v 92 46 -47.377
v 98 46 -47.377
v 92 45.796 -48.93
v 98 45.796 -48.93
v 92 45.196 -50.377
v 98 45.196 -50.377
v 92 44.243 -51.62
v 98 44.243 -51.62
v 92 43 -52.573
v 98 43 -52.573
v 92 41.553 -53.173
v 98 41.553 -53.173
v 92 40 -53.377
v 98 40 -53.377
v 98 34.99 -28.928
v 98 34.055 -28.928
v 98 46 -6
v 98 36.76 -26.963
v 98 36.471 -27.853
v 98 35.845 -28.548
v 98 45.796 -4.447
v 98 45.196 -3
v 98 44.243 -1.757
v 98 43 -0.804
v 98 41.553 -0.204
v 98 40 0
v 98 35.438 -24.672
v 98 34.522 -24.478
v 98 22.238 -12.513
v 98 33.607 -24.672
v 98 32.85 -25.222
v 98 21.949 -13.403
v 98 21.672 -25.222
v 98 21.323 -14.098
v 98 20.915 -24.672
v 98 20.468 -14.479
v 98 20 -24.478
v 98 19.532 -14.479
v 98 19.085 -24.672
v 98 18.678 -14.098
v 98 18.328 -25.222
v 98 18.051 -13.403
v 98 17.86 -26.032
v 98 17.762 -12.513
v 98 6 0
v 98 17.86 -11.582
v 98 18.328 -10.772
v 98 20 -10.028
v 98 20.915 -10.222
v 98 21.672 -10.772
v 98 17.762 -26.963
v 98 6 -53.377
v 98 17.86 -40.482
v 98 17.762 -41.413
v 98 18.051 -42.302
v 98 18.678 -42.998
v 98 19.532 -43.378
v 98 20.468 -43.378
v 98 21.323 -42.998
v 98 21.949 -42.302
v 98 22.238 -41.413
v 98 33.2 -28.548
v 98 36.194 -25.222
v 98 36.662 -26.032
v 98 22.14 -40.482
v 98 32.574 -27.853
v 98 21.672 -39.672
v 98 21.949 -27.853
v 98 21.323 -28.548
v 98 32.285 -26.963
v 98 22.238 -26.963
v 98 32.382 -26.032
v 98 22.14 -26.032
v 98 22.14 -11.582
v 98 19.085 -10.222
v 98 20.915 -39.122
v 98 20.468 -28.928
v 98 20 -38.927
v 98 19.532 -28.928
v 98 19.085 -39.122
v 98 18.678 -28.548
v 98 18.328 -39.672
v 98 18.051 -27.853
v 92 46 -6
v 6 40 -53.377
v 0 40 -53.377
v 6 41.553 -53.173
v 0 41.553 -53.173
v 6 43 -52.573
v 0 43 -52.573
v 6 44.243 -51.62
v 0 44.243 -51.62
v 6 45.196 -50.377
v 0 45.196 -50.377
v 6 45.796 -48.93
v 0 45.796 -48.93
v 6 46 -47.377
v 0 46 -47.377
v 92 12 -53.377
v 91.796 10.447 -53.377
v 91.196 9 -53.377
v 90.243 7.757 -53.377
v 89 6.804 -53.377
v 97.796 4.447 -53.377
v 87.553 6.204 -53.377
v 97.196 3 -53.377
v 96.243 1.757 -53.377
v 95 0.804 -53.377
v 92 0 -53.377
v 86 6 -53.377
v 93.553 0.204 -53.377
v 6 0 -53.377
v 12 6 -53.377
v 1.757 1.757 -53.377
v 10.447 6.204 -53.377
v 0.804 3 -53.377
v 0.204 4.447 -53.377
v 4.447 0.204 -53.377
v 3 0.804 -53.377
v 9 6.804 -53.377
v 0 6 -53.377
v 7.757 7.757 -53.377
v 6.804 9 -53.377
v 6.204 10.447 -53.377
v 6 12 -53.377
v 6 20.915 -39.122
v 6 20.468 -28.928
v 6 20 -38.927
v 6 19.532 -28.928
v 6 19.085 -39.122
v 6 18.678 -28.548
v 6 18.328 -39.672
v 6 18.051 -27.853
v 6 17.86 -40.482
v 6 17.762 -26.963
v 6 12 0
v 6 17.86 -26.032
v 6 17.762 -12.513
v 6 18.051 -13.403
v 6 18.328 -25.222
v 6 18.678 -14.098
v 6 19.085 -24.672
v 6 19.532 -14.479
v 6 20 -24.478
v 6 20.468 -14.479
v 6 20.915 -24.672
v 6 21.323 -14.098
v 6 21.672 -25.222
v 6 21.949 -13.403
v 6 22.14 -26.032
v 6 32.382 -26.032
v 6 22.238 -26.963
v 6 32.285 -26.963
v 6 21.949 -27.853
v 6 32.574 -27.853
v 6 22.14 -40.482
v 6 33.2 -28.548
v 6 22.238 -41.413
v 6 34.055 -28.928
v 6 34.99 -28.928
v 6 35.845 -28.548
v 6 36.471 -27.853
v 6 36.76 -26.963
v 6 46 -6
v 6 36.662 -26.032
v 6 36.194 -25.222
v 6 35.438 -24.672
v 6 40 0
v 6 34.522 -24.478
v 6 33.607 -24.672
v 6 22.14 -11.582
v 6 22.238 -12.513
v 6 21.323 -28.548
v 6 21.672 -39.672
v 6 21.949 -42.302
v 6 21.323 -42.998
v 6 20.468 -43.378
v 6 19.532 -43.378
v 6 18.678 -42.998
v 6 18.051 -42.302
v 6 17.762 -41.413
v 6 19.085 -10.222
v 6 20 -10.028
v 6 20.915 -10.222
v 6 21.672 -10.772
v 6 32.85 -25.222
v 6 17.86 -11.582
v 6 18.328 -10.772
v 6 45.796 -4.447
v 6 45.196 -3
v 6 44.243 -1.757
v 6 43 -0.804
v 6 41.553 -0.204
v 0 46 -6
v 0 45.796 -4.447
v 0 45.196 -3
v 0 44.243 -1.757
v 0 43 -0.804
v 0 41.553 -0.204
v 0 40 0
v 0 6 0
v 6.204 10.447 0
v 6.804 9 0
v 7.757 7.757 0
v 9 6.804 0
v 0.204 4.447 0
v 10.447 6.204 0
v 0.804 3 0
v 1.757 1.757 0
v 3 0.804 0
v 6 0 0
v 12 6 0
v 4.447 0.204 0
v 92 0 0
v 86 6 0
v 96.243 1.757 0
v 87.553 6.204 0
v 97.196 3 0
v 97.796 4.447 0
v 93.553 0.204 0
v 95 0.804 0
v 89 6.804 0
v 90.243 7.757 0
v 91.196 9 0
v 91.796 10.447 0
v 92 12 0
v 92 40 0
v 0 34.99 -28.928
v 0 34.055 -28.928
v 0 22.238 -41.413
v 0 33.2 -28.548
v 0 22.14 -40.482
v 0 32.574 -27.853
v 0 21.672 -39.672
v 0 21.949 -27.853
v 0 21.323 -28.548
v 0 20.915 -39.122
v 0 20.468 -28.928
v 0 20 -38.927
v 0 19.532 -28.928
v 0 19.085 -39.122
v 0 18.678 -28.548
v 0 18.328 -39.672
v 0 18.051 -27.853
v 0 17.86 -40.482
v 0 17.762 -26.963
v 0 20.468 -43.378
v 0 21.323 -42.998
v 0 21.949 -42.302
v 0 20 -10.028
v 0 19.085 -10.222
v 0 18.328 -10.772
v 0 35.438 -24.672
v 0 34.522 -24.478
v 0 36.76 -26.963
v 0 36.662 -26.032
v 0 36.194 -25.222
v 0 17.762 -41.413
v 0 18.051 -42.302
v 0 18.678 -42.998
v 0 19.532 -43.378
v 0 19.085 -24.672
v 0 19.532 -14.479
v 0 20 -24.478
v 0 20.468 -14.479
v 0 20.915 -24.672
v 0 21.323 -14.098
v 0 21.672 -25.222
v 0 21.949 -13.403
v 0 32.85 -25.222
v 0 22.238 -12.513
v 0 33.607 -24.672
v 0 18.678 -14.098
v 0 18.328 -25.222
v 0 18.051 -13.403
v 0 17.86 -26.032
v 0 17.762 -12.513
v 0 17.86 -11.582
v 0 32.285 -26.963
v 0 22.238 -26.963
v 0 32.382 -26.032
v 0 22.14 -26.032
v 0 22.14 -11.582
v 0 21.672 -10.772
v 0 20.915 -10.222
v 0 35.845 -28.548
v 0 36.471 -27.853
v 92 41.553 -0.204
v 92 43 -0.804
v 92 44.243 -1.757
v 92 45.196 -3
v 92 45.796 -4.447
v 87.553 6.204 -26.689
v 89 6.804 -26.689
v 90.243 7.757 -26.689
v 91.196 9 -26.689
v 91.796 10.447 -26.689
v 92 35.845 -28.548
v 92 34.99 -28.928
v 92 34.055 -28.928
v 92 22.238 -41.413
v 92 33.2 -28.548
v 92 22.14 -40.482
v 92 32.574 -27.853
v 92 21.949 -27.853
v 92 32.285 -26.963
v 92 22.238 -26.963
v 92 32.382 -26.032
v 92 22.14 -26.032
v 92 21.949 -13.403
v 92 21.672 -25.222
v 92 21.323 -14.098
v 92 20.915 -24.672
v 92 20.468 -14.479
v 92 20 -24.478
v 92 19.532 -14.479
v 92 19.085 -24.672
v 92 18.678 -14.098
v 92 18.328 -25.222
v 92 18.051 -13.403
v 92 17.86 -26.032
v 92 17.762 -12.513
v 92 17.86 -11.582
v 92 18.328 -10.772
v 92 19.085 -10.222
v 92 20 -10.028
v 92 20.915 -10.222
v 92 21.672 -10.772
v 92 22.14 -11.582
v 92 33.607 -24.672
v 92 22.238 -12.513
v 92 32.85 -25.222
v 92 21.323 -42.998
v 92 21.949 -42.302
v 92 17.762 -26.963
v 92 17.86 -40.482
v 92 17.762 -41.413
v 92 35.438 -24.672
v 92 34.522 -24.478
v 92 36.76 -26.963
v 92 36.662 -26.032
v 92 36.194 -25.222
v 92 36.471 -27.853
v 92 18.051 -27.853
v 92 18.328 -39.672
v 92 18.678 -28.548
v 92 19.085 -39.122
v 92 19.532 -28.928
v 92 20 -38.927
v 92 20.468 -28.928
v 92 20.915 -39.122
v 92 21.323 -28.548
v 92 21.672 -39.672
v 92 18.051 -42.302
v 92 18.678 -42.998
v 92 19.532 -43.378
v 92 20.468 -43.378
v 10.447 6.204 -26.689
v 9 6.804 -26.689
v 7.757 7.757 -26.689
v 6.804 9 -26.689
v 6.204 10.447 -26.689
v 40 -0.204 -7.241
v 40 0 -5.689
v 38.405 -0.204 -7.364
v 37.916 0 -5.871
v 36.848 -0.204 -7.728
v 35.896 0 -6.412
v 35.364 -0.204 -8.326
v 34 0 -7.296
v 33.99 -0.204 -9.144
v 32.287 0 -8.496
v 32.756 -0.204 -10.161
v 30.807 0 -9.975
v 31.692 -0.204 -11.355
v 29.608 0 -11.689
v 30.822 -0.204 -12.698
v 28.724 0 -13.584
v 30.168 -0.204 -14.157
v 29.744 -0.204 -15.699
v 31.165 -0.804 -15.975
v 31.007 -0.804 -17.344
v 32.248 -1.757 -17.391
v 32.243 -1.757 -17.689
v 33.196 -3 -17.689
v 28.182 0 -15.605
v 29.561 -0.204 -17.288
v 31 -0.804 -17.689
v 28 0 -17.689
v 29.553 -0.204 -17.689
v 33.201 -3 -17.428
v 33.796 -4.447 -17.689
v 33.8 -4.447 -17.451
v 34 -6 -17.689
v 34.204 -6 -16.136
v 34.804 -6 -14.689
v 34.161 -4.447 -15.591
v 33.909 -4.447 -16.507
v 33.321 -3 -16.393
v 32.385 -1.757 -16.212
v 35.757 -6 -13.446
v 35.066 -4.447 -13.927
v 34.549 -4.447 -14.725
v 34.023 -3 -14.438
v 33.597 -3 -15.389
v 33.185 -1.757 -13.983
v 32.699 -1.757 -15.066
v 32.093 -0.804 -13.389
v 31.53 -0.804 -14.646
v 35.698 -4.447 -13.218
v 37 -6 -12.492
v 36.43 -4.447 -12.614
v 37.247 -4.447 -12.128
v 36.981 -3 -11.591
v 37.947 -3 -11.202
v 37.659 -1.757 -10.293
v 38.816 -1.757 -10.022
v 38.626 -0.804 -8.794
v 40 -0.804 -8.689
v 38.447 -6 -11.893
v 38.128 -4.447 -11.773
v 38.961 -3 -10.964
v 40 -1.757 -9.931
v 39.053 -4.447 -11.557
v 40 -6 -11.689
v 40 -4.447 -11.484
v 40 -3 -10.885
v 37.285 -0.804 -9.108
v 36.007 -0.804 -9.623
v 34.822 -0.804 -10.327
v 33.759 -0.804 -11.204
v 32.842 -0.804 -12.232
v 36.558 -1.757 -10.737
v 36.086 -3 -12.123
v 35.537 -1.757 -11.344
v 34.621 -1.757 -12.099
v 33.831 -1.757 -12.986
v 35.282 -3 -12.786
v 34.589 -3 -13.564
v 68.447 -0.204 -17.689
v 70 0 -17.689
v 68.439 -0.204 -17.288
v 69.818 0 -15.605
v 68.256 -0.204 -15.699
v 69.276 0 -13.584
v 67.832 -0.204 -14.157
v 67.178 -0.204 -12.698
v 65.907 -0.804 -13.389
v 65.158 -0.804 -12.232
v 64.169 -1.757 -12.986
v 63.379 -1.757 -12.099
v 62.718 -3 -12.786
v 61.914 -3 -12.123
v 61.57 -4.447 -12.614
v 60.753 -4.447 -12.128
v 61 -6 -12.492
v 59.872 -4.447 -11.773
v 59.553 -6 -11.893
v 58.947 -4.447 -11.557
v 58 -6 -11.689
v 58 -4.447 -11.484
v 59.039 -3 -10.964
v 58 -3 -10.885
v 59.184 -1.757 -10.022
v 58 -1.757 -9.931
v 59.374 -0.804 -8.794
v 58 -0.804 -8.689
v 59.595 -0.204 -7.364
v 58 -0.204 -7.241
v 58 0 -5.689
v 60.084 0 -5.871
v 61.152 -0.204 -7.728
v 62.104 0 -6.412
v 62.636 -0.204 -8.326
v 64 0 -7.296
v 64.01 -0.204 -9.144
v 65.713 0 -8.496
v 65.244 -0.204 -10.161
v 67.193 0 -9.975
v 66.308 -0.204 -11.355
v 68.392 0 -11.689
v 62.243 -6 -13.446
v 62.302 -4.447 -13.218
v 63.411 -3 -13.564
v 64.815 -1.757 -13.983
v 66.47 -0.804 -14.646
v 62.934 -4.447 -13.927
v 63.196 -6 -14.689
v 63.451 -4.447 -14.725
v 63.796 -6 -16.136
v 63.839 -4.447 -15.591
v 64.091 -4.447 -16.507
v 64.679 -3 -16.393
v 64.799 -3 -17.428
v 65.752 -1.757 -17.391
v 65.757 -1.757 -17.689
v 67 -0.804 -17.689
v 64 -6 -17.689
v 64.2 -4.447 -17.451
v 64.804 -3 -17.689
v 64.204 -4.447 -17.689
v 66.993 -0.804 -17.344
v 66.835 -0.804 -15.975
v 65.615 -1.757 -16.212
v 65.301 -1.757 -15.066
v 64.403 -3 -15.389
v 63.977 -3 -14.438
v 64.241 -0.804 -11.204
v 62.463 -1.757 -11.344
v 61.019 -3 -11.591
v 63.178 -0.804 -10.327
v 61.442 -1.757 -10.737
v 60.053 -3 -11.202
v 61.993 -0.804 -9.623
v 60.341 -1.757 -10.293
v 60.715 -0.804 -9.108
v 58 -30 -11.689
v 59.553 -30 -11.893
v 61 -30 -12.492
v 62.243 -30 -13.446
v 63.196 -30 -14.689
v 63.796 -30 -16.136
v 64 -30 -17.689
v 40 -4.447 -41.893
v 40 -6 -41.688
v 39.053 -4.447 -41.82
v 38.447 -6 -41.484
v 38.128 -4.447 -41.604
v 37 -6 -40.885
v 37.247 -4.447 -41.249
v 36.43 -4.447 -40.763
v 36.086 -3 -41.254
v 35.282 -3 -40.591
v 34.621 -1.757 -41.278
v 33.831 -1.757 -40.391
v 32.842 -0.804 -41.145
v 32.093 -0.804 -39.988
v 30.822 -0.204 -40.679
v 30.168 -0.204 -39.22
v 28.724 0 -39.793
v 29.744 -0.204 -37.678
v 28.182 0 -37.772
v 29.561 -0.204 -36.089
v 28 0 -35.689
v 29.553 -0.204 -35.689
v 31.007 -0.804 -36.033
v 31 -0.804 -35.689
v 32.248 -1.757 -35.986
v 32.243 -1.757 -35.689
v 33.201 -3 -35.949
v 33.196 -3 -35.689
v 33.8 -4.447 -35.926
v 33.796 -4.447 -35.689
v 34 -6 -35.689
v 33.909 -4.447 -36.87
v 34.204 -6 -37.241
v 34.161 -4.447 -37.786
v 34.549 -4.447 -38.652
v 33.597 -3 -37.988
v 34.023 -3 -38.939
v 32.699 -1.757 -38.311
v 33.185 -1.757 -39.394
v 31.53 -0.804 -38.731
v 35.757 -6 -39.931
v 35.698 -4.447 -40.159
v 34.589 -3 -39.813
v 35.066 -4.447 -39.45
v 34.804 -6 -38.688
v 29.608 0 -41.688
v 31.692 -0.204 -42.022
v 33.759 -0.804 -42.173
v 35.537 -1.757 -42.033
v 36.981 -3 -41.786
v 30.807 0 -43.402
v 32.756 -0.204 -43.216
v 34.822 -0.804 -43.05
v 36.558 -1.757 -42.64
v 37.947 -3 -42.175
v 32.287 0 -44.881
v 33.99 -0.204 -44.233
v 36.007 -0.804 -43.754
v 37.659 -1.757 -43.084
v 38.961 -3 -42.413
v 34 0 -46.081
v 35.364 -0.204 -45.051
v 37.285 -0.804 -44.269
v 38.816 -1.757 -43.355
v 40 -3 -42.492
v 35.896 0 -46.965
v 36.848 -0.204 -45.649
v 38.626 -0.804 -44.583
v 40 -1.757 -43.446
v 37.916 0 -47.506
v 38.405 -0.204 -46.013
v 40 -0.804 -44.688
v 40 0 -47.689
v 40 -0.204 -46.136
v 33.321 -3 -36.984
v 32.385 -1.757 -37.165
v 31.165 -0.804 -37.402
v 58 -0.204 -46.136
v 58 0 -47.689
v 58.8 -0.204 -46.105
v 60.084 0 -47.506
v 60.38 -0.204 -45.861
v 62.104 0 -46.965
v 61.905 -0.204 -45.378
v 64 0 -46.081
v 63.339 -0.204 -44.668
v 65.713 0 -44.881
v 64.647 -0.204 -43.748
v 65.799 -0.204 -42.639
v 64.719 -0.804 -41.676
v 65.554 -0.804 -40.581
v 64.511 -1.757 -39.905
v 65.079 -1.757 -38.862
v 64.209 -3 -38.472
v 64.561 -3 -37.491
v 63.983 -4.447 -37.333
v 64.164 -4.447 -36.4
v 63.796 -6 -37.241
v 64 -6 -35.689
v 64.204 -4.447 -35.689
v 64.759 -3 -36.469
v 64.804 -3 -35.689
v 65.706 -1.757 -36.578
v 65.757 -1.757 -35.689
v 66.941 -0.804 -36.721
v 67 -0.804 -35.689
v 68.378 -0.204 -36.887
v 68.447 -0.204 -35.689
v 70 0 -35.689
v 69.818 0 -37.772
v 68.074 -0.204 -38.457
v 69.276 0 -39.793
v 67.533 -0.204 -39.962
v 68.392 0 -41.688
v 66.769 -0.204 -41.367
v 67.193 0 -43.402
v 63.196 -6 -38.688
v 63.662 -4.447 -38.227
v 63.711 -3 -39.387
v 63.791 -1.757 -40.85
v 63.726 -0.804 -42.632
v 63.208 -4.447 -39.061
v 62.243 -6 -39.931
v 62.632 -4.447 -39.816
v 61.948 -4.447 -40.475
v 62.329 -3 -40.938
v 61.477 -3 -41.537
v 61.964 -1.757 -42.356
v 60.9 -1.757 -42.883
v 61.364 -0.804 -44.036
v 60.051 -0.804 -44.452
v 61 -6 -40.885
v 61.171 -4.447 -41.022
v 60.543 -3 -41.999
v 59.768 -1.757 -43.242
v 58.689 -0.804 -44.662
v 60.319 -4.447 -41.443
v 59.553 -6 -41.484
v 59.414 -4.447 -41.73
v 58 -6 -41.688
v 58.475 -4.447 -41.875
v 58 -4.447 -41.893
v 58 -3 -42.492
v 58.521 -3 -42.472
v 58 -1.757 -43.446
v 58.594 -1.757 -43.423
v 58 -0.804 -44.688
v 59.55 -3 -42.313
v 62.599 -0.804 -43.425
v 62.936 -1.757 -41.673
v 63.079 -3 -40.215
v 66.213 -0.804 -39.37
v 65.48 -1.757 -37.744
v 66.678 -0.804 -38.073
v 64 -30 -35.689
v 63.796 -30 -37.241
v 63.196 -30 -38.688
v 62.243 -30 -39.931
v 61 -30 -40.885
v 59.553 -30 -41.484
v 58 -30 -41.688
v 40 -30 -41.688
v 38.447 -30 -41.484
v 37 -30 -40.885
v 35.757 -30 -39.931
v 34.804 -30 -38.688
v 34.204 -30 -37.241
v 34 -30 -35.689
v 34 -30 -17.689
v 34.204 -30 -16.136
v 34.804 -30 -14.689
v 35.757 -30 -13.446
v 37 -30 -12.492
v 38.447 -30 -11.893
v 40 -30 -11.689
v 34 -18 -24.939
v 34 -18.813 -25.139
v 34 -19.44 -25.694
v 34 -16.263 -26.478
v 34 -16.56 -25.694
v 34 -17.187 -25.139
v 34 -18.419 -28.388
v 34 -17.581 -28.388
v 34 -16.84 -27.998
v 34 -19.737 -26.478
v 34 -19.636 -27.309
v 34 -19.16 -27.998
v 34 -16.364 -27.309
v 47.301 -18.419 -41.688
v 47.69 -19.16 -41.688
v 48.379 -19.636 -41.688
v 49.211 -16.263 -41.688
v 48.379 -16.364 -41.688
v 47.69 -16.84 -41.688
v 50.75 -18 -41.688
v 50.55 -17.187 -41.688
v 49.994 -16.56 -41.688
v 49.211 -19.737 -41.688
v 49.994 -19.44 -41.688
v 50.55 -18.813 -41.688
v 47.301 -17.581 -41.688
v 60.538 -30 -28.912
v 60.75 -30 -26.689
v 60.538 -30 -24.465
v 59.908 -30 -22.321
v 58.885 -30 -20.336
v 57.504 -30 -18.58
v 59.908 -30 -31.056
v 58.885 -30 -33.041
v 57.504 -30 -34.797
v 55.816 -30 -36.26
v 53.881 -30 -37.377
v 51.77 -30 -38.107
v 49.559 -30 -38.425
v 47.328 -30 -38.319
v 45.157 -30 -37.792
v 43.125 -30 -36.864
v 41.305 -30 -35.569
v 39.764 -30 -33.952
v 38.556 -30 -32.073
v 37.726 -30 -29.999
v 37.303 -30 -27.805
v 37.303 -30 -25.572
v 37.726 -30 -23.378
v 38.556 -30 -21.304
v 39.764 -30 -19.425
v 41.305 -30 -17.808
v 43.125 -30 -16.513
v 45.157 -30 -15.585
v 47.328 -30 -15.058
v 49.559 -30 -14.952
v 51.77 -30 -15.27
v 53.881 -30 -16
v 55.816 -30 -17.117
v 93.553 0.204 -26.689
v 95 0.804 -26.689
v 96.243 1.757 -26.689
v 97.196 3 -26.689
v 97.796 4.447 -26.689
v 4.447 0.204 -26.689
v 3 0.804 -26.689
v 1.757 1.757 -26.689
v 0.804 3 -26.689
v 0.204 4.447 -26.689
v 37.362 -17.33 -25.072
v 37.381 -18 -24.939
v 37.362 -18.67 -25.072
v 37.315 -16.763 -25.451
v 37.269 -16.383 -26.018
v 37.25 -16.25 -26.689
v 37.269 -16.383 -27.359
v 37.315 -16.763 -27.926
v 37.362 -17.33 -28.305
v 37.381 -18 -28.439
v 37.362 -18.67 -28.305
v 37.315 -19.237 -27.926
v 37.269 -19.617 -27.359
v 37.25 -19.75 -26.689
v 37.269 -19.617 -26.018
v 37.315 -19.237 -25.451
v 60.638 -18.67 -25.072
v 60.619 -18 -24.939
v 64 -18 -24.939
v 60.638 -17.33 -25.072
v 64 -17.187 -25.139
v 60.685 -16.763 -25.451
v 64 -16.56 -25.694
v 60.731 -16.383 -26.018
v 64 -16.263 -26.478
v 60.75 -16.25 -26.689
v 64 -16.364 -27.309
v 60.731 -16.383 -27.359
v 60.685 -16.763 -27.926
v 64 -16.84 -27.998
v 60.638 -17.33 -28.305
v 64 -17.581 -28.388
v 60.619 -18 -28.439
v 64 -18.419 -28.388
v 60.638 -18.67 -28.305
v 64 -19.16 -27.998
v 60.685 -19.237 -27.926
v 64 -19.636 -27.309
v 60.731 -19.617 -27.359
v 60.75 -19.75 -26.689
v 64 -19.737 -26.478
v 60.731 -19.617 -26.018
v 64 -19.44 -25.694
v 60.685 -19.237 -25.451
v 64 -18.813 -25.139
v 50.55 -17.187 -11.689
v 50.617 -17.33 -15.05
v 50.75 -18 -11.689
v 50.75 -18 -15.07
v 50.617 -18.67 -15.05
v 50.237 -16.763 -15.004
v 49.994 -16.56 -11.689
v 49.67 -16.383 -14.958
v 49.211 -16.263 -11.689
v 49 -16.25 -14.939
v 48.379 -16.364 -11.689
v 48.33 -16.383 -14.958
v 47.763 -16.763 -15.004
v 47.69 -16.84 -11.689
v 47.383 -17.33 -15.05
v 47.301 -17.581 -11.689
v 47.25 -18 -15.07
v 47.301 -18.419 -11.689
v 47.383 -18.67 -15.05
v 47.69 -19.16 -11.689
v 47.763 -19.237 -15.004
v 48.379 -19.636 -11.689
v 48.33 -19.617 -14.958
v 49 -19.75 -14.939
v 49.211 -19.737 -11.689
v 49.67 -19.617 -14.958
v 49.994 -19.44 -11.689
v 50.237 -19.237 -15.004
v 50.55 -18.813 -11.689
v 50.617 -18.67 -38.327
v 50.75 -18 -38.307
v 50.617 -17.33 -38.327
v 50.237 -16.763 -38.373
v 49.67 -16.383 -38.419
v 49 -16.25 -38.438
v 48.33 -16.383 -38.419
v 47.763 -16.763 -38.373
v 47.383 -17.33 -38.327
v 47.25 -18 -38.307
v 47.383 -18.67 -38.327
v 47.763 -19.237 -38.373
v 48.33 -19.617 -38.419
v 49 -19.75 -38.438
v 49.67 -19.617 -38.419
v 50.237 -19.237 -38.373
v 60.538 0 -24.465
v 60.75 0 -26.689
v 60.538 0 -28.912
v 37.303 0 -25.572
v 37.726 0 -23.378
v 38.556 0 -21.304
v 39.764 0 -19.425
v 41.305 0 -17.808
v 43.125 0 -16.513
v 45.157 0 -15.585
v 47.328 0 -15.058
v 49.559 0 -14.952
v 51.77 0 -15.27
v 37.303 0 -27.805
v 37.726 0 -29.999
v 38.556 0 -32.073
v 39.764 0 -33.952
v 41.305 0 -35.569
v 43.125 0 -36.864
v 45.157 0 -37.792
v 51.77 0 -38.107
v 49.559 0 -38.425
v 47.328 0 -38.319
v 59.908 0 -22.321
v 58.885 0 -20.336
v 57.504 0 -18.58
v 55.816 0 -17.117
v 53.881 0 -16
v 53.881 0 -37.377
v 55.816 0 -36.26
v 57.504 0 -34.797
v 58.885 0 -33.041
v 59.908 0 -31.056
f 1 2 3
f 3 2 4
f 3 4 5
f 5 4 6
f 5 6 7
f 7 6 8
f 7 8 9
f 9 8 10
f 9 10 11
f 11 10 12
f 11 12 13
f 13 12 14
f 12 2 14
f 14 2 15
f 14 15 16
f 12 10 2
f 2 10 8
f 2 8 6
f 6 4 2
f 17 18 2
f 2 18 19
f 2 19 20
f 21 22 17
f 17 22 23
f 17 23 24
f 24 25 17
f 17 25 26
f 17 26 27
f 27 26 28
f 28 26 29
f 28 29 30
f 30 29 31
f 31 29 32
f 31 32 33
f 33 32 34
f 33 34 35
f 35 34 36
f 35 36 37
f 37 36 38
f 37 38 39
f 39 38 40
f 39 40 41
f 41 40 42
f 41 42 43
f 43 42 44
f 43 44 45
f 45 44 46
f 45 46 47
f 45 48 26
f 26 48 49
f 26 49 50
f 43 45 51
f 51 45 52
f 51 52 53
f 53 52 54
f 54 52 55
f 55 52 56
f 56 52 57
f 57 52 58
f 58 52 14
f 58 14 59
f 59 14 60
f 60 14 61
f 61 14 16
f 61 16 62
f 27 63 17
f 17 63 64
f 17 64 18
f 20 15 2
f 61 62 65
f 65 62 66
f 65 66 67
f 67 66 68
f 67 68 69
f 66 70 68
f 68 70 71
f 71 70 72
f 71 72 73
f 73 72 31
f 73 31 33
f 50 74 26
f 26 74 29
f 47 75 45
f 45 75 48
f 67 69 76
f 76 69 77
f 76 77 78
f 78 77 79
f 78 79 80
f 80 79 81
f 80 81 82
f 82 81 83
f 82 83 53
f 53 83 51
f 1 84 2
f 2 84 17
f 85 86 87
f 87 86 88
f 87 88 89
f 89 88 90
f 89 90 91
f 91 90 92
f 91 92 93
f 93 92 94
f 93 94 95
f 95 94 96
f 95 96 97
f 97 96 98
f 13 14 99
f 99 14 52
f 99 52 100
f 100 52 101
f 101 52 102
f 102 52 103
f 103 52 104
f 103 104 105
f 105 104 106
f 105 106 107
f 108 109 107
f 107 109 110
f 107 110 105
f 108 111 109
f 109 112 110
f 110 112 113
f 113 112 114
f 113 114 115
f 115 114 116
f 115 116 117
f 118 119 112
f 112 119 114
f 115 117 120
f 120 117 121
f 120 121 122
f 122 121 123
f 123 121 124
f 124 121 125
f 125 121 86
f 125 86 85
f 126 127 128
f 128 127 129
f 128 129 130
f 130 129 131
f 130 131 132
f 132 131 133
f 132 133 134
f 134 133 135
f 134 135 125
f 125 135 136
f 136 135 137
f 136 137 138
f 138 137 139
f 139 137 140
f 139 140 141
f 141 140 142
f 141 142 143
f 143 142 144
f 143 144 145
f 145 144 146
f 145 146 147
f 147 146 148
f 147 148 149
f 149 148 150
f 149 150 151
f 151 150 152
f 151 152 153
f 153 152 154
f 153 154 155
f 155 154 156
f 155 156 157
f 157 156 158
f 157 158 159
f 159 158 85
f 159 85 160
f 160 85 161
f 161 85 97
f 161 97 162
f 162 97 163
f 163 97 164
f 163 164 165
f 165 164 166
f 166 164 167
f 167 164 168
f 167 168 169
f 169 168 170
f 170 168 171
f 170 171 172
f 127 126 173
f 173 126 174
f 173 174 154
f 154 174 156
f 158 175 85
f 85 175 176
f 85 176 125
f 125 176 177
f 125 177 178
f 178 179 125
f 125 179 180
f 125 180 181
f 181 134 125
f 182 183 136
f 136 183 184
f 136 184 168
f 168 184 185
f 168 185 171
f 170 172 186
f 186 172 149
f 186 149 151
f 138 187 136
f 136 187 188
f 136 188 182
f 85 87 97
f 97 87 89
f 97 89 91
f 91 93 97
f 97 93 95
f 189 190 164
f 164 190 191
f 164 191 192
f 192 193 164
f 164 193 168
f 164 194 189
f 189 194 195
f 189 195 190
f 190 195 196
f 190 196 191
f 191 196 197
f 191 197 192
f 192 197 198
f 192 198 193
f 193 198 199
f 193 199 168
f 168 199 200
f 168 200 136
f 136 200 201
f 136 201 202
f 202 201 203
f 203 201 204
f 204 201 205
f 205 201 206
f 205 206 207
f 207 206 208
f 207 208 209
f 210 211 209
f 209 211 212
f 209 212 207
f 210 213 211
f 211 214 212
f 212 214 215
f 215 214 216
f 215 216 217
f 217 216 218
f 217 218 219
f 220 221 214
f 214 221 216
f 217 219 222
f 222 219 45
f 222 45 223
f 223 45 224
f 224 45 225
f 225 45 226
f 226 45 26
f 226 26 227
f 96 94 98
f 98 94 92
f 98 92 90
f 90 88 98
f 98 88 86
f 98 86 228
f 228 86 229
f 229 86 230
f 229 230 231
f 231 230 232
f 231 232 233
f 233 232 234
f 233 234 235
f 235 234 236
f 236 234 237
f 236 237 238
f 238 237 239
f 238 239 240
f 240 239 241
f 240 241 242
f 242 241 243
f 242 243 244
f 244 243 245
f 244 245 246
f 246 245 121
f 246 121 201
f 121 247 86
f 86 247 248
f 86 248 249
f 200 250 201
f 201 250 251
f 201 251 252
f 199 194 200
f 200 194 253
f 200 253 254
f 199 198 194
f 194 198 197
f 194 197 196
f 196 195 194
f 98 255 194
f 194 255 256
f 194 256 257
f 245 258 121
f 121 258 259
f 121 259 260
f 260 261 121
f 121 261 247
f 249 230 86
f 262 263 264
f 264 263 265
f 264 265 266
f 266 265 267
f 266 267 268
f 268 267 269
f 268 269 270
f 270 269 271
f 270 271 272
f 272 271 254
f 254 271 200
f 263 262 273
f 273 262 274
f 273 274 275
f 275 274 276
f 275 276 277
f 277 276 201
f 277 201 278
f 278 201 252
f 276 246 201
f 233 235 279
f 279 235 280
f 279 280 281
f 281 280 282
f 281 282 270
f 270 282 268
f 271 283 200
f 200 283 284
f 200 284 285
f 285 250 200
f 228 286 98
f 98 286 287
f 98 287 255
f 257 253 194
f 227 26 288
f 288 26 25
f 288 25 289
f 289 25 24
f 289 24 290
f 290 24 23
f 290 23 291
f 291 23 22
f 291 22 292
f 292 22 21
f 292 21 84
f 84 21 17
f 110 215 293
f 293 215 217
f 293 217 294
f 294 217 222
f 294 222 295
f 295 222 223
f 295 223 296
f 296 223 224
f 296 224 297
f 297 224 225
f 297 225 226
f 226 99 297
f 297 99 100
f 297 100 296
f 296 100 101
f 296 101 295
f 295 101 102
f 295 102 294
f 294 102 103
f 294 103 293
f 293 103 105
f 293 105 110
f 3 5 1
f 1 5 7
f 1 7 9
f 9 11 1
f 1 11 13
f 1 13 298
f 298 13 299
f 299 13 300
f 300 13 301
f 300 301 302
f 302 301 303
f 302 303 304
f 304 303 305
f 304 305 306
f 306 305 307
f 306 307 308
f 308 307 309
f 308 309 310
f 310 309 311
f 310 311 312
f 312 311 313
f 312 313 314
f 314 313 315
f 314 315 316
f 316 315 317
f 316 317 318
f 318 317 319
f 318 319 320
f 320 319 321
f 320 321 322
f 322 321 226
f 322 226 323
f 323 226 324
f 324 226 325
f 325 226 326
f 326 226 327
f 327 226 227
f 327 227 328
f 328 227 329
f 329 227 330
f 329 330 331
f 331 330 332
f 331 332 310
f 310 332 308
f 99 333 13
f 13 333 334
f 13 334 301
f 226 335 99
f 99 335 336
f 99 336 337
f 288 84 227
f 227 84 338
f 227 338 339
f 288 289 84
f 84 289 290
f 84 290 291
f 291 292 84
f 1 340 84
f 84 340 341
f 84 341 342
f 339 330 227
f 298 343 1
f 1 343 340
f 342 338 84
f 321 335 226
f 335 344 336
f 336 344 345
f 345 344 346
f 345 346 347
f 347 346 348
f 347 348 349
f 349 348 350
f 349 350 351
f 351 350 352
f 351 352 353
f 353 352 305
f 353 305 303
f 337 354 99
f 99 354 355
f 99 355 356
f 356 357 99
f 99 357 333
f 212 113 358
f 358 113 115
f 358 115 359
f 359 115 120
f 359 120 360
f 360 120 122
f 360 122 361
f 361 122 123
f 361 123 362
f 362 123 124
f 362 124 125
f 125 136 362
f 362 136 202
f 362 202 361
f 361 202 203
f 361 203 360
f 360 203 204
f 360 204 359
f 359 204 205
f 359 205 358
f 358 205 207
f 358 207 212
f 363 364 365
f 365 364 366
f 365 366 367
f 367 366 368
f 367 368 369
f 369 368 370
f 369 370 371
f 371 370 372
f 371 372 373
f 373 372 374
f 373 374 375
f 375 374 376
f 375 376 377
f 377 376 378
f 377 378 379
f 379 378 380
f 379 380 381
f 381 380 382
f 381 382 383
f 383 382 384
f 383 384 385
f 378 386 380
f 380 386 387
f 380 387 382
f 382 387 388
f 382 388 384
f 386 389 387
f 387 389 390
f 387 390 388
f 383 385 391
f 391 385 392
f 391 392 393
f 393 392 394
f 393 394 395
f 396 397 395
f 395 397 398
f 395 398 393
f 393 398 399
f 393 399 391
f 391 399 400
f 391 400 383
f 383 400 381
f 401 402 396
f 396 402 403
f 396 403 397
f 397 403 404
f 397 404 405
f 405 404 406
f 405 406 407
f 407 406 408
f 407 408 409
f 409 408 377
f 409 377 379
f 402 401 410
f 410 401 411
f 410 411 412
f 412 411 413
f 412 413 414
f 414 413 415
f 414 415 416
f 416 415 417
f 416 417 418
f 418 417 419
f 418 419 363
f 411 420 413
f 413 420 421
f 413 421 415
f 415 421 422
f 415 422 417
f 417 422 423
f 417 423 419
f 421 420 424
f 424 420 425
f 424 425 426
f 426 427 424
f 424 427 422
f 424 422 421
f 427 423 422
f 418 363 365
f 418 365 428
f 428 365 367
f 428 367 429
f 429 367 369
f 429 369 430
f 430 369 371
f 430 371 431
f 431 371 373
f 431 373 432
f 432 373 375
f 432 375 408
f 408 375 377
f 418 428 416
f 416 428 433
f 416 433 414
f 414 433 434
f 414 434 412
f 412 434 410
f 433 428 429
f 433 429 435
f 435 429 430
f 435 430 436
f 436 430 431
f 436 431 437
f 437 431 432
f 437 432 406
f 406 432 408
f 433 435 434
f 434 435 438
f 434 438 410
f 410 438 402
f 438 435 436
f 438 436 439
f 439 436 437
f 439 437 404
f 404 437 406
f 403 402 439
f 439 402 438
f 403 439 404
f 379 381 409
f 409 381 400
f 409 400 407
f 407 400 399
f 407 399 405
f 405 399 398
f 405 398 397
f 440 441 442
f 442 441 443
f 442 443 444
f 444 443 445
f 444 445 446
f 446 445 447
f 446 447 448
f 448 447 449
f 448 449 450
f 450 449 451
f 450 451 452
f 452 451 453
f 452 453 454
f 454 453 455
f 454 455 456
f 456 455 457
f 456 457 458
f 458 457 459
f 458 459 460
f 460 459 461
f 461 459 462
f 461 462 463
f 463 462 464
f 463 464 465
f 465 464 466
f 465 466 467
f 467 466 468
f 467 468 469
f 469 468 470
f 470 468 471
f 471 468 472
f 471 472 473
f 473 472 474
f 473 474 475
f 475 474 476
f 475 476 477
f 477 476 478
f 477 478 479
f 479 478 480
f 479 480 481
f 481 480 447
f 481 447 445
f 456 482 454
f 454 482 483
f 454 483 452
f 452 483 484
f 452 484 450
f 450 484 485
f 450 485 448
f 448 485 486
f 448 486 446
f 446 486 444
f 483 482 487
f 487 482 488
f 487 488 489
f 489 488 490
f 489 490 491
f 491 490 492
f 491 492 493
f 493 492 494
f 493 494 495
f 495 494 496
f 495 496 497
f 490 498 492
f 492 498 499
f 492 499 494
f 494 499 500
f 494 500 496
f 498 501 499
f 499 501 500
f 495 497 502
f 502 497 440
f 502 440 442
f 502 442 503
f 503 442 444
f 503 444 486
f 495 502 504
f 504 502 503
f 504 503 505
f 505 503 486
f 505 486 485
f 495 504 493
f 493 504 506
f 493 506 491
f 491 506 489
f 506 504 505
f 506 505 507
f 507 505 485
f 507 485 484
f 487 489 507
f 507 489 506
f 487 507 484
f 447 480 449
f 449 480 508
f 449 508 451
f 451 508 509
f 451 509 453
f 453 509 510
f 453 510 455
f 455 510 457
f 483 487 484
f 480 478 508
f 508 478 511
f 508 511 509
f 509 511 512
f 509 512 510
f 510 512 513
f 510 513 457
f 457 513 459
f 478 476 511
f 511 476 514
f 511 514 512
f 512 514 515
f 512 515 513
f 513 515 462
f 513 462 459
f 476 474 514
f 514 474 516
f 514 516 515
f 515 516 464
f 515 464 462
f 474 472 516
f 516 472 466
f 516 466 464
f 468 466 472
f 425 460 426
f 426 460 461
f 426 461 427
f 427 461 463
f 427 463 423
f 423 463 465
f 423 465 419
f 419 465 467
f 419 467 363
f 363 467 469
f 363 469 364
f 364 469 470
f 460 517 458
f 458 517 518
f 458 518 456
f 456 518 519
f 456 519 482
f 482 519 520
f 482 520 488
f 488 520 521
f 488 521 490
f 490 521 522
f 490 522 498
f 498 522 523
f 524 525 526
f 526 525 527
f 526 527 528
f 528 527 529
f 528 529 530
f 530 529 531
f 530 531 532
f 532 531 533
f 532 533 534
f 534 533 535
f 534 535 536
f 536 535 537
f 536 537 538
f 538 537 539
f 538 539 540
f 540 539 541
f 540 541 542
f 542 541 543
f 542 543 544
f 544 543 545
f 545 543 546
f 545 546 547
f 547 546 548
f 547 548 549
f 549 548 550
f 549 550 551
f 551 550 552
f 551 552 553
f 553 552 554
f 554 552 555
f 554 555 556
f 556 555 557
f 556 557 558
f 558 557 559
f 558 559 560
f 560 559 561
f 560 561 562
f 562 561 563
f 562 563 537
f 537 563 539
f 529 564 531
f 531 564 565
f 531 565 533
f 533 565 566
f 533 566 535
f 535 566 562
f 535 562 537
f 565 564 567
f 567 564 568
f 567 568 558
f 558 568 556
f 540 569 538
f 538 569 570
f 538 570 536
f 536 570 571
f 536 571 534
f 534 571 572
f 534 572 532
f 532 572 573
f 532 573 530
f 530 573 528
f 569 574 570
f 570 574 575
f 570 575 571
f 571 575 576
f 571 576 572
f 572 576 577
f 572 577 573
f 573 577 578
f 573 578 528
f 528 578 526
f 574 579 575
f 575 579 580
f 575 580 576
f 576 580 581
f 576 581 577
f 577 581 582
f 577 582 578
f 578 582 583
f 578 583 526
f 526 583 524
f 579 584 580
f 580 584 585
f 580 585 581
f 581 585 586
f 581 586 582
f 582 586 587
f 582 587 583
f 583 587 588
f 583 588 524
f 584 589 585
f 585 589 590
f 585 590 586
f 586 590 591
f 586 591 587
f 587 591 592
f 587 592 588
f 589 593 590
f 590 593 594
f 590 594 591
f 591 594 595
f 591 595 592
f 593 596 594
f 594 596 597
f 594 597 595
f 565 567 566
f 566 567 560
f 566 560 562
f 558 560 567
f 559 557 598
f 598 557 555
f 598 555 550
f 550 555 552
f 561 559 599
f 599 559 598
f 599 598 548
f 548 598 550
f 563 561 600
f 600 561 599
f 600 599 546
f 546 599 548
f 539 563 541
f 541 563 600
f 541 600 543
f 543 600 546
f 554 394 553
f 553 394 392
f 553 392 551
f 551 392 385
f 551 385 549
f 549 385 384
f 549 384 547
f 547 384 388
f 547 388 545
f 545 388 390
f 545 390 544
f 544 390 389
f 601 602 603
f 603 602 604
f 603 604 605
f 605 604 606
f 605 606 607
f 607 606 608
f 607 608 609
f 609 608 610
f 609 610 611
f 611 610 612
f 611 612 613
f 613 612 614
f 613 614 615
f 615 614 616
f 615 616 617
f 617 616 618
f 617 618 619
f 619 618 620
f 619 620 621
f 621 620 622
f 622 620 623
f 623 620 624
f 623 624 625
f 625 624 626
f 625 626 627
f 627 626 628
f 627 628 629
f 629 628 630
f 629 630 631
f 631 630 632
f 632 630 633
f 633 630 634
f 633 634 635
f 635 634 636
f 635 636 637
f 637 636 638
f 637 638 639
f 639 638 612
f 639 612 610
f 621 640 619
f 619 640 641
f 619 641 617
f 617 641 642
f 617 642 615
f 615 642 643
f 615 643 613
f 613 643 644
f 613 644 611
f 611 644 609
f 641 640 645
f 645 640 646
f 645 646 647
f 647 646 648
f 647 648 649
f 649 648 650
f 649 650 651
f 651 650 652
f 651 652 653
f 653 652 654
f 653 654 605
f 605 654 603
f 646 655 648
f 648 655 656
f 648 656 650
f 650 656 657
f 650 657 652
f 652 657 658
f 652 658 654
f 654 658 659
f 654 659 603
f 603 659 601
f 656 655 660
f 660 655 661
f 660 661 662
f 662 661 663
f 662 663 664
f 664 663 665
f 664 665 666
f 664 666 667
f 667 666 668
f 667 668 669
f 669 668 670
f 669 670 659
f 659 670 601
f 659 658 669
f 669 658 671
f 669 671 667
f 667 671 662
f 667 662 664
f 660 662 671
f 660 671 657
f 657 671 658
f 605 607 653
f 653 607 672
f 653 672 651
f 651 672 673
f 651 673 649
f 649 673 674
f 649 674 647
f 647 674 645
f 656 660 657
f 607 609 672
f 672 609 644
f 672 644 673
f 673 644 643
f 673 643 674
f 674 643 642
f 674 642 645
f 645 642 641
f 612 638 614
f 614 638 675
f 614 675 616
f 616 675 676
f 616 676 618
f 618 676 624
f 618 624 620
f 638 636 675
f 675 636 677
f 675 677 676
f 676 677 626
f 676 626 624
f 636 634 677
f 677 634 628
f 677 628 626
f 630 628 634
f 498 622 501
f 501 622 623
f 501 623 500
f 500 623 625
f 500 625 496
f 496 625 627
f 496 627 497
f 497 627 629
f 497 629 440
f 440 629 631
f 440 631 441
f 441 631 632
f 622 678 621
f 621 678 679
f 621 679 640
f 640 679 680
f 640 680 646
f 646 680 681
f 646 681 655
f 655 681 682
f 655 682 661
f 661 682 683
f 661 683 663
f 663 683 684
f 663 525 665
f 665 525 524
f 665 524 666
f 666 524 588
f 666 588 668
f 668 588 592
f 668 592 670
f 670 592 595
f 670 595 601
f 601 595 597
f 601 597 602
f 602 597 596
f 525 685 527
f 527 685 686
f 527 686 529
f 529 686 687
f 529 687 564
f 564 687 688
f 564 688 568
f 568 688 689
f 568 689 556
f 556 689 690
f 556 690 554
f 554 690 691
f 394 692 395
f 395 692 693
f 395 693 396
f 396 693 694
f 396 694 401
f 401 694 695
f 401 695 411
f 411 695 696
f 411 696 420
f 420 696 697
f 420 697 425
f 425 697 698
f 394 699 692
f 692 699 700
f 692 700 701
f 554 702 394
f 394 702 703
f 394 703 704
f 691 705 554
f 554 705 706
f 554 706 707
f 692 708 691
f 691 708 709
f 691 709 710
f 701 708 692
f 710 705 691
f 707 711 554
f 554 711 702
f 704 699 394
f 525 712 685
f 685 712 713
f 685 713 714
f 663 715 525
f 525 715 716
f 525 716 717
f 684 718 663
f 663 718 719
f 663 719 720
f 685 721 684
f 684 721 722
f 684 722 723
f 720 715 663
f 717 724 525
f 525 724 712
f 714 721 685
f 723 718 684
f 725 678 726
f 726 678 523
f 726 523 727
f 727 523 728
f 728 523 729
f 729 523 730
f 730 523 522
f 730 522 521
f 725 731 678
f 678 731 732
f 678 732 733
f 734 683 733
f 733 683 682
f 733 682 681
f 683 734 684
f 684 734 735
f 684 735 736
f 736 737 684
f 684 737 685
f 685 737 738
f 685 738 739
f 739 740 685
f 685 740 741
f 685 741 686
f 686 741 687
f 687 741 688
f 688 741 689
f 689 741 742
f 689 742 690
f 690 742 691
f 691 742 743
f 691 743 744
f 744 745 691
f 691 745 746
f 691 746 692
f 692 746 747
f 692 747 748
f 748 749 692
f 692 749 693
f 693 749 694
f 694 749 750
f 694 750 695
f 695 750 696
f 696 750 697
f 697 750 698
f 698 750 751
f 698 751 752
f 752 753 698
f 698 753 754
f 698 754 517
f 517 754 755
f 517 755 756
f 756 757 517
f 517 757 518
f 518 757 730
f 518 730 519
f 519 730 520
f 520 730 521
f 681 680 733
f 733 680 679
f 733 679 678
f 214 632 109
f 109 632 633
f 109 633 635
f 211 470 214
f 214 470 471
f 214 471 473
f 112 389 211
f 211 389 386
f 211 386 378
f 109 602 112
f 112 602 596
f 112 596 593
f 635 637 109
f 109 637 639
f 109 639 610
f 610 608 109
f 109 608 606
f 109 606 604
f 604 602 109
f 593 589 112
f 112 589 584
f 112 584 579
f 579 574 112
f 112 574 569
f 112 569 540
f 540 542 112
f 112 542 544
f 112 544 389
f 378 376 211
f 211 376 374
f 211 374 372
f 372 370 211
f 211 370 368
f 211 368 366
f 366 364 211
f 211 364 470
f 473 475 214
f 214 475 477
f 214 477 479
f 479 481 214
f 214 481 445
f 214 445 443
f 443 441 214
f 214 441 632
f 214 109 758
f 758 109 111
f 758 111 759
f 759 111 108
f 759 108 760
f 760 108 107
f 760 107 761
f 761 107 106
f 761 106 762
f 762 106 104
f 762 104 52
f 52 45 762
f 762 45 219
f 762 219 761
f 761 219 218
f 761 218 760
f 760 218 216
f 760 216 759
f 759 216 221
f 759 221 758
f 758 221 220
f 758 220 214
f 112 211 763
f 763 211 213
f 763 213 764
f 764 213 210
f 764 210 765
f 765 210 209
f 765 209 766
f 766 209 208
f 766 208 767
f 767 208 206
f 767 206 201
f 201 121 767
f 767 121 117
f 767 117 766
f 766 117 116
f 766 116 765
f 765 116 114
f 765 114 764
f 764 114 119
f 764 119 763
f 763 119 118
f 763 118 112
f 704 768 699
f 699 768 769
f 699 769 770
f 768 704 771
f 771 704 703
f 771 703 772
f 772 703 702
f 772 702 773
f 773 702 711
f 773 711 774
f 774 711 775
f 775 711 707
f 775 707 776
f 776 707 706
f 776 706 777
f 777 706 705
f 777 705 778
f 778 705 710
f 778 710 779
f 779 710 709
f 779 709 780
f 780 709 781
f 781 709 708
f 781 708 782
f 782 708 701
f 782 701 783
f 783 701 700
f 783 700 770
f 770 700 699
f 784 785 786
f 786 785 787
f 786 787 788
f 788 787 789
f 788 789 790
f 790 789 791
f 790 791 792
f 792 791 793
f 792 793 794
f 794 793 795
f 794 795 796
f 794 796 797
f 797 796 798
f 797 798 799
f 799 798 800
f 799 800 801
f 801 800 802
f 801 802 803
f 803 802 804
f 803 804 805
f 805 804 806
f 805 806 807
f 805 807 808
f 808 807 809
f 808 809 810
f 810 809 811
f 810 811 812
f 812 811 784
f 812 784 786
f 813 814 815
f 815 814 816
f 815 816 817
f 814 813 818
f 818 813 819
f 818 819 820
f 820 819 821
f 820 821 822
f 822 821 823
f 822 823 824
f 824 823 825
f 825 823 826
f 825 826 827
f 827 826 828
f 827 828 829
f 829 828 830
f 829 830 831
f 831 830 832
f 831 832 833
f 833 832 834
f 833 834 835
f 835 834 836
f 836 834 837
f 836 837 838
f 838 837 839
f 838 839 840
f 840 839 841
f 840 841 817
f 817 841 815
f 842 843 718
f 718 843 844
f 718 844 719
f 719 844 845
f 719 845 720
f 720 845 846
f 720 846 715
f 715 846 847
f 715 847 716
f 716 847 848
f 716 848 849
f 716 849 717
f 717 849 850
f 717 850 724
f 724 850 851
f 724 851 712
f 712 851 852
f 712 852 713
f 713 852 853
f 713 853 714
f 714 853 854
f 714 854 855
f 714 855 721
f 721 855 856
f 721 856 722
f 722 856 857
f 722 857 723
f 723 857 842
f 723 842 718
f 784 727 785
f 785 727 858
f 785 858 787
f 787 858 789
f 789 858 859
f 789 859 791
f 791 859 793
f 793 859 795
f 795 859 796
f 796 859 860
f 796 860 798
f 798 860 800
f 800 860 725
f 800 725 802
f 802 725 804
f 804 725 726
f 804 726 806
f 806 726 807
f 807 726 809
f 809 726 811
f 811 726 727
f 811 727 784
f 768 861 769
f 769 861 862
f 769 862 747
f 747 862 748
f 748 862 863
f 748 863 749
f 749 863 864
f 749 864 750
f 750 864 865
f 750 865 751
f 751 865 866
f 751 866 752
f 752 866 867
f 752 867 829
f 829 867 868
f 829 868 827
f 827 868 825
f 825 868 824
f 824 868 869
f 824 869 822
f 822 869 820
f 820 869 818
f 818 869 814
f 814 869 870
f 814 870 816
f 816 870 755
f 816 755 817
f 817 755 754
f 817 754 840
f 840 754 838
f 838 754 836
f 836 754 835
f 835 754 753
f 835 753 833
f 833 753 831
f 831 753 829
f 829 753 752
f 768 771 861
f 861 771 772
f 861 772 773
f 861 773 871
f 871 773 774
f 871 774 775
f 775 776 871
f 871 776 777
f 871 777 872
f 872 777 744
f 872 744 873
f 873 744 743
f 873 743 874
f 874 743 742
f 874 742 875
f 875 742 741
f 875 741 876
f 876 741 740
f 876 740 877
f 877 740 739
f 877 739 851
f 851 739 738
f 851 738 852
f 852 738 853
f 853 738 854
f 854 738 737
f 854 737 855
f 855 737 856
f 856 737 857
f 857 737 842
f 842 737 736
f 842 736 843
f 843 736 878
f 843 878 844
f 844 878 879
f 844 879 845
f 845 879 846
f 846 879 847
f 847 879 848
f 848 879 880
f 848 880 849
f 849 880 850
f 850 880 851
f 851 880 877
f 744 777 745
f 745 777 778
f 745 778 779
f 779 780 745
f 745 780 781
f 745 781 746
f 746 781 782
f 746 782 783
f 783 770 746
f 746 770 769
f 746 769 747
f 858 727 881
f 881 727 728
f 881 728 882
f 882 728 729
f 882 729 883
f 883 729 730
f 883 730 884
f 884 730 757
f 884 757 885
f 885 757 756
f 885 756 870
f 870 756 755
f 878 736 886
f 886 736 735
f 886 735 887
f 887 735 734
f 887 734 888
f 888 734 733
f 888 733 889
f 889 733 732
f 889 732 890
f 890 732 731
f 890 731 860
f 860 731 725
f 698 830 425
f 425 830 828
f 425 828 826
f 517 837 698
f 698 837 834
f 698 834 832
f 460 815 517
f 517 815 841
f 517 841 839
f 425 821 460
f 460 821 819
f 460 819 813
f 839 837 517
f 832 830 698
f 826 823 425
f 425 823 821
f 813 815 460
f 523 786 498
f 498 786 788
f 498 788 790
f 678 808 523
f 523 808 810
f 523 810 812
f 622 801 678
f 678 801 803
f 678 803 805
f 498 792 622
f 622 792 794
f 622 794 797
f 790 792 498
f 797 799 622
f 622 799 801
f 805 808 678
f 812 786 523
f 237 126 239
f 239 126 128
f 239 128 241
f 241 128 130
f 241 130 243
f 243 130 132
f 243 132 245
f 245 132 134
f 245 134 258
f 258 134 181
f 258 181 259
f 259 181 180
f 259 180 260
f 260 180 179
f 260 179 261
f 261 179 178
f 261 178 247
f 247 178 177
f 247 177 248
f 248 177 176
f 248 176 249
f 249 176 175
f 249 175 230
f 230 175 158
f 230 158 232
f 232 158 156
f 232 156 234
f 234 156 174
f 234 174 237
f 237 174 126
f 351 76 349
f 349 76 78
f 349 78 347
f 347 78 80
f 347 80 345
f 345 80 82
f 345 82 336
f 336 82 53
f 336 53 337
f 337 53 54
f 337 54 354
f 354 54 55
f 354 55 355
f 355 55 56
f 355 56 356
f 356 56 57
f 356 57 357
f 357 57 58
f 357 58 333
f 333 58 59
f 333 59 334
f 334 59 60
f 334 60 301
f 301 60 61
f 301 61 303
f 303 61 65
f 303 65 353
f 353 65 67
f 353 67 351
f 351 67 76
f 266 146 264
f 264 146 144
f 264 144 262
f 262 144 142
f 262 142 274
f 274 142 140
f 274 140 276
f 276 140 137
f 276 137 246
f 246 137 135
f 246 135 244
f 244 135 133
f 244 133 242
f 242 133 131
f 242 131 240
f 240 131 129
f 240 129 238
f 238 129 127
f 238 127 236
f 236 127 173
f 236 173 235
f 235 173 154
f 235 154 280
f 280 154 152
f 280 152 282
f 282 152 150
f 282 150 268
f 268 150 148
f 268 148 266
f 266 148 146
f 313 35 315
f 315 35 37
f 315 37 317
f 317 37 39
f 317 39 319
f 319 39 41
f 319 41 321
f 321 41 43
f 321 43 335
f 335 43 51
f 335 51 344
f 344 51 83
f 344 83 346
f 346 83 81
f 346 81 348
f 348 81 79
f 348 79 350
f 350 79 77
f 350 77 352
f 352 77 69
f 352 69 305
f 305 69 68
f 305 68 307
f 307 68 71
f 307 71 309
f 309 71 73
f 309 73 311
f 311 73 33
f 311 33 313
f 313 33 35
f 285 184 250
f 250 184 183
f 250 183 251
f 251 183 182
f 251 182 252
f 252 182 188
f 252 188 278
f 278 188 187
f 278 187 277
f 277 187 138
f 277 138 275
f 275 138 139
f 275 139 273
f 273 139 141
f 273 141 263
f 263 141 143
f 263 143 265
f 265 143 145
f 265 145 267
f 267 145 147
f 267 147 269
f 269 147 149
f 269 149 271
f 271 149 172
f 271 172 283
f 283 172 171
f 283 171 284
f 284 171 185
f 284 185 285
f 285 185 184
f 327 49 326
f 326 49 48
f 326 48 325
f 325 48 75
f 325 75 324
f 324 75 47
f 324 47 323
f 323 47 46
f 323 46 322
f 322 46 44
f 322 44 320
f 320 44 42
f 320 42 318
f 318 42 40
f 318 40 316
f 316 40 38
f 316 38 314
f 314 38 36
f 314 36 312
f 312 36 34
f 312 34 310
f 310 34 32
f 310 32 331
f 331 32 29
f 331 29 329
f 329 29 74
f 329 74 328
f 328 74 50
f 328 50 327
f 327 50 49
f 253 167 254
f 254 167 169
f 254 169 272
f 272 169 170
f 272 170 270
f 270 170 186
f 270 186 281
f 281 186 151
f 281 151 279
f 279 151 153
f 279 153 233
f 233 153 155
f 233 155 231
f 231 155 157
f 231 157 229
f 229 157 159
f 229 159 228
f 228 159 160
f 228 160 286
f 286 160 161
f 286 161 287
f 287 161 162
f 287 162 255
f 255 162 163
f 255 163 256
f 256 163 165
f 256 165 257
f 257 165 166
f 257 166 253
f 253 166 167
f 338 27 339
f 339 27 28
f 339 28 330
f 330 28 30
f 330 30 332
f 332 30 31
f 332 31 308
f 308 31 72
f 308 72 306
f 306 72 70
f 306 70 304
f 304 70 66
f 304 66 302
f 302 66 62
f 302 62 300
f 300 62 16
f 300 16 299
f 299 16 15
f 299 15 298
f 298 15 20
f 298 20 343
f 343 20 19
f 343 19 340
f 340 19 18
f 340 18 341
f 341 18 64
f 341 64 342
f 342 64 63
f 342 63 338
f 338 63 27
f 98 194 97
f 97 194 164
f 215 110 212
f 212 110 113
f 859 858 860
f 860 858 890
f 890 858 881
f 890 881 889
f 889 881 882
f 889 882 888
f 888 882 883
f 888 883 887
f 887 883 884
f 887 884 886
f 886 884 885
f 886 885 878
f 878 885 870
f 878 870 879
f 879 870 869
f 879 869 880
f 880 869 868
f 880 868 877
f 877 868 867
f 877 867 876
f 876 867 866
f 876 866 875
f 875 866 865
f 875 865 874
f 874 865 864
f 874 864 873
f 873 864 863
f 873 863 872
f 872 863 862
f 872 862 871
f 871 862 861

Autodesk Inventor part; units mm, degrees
ref_plane "YZ Plane" through (0, 0, 0) normal (1, 0, 0) x (0, 1, 0)
ref_plane "XZ Plane" through (0, 0, 0) normal (0, 1, 0) x (-1, 0, 0)
ref_plane "XY Plane" through (0, 0, 0) normal (0, 0, 1) x (1, 0, 0)
sketch "Sketch1" plane through (0, 0, 0) normal (0, 1, 0) x (-1, 0, 0)
  line L0 (0, 0) -> (-98, 0)
  line L1 (-98, 0) -> (-98, -53.377)
  line L2 (-98, -53.377) -> (0, -53.377)
  line L3 (0, -53.377) -> (0, 0)
  line L4 (-98, -53.377) -> (0, 0) construction
  dimension "d0" = 98
  dimension "d1" = 53.377
extrude "Extrusion1" add sketch "Sketch1" along normal blind 6
sketch "Sketch2" plane through (0, 6, 0) normal (0, 1, 0) x (1, 0, 0)
  line L0 (98, 0) -> (98, 53.377) projected
  line L1 (0, 0) -> (98, 0) projected
  line L2 (98, 53.377) -> (92, 53.377)
  line L3 (92, 53.377) -> (92, 0)
  line L4 (92, 0) -> (98, 0)
  line L5 (98, 0) -> (98, 53.377)
  line L6 (0, 53.377) -> (6, 53.377)
  line L7 (6, 53.377) -> (6, 0)
  line L8 (6, 0) -> (0, 0)
  line L9 (0, 0) -> (0, 53.377)
  dimension "d4" = 6
  dimension "d5" = 6
extrude "Extrusion2" add sketch "Sketch2" along normal blind 40
sketch "Sketch3" plane through (0, 0, -53.377) normal (-1, 0, 0) x (0, 0, 1)
  arc A0 (41.0993, 20) -> (12.1996, 20) centre (26.6494, 20.0723) ccw construction
  arc A1 (43.3493, 19.9888) -> (9.9496, 19.9888) centre (26.6494, 20.0723) ccw
  arc A2 (38.8493, 20.0113) -> (14.4496, 20.0113) centre (26.6494, 20.0723) ccw
  arc A3 (38.8493, 20.0113) -> (43.3493, 19.9888) centre (41.0993, 20) ccw
  arc A4 (9.9496, 19.9888) -> (14.4496, 20.0113) centre (12.1996, 20) ccw
  circle A5 centre (26.6495, 20) radius 2.25
  circle A6 centre (41.0993, 20) radius 2.25
  circle A7 centre (12.1996, 20) radius 2.25
  circle A8 centre (26.6494, 34.5224) radius 2.25
  point P0 (53.377, 0)
  dimension "d8" = 4.5
  dimension "d9" = 4.5
  dimension "d36" = 14.45
extrude "Extrusion3" cut sketch "Sketch3" against normal blind 110 and the other way blind 12.5 contours A3 A6 A1 | A8 | A7 A4 | A5
sketch "Sketch4" plane through (0, 0, 0) normal (0, -1, 0) x (1, 0, 0)
  line L0 (98, -53.377) -> (92, -53.377) construction
  line L1 (98, -53.377) -> (0, 0) construction
  line L2 (64, -41.6885) -> (34, -41.6885)
  line L3 (34, -41.6885) -> (34, -11.6885)
  line L4 (34, -11.6885) -> (64, -11.6885)
  line L5 (64, -11.6885) -> (64, -41.6885)
  line L6 (64, -41.6885) -> (34, -11.6885) construction
  line L7 (34, -41.6885) -> (64, -11.6885) construction
  circle A0 centre (49, -26.6885) radius 11.75
  dimension "d16" = 30
  dimension "d17" = 30
  dimension "d18" = 23.5
extrude "Extrusion4" add sketch "Sketch4" along normal blind 30
sketch "Sketch5" plane through (34, 0, -11.6885) normal (0, 0, 1) x (1, 0, 0)
  line L0 (0, -30) -> (30, -30) construction
  line L1 (30, 0) -> (0, 0) construction
  circle A0 centre (15, -18) radius 1.75
  point P0 (-34, 0)
  dimension "d21" = 3.5
  dimension "d26" = 12
extrude "Extrusion5" cut sketch "Sketch5" against normal blind 33
sketch "Sketch7" plane through (34, 0, -41.6885) normal (-1, 0, 0) x (0, 0, 1)
  line L0 (0, 0) -> (0, -30) construction
  line L1 (30, 0) -> (30, -30) construction
  circle A0 centre (15, -18) radius 1.75
  line L2 (30, -30) -> (0, -30) projected
  point P0 (41.6885, 0)
  dimension "d31" = 3.5
  dimension "d32" = 12
extrude "Extrusion7" cut sketch "Sketch7" against normal blind 33
fillet "Fillet3" radius 6 16 edges at (0, 0, -26.6885) (98, 0, -26.6885) (64, -15, -41.6885) (34, -15, -41.6885) (49, 0, -41.6885) (34, 0, -26.6885) (34, -15, -11.6885) (49, 0, -11.6885) (64, -15, -11.6885) (64, 0, -26.6885) (6, 6, -26.6885) (92, 6, -26.6885) (95, 46, 0) (3, 46, 0) (3, 46, -53.377) (95, 46, -53.377)
properties part number "Drone_holder_base"
